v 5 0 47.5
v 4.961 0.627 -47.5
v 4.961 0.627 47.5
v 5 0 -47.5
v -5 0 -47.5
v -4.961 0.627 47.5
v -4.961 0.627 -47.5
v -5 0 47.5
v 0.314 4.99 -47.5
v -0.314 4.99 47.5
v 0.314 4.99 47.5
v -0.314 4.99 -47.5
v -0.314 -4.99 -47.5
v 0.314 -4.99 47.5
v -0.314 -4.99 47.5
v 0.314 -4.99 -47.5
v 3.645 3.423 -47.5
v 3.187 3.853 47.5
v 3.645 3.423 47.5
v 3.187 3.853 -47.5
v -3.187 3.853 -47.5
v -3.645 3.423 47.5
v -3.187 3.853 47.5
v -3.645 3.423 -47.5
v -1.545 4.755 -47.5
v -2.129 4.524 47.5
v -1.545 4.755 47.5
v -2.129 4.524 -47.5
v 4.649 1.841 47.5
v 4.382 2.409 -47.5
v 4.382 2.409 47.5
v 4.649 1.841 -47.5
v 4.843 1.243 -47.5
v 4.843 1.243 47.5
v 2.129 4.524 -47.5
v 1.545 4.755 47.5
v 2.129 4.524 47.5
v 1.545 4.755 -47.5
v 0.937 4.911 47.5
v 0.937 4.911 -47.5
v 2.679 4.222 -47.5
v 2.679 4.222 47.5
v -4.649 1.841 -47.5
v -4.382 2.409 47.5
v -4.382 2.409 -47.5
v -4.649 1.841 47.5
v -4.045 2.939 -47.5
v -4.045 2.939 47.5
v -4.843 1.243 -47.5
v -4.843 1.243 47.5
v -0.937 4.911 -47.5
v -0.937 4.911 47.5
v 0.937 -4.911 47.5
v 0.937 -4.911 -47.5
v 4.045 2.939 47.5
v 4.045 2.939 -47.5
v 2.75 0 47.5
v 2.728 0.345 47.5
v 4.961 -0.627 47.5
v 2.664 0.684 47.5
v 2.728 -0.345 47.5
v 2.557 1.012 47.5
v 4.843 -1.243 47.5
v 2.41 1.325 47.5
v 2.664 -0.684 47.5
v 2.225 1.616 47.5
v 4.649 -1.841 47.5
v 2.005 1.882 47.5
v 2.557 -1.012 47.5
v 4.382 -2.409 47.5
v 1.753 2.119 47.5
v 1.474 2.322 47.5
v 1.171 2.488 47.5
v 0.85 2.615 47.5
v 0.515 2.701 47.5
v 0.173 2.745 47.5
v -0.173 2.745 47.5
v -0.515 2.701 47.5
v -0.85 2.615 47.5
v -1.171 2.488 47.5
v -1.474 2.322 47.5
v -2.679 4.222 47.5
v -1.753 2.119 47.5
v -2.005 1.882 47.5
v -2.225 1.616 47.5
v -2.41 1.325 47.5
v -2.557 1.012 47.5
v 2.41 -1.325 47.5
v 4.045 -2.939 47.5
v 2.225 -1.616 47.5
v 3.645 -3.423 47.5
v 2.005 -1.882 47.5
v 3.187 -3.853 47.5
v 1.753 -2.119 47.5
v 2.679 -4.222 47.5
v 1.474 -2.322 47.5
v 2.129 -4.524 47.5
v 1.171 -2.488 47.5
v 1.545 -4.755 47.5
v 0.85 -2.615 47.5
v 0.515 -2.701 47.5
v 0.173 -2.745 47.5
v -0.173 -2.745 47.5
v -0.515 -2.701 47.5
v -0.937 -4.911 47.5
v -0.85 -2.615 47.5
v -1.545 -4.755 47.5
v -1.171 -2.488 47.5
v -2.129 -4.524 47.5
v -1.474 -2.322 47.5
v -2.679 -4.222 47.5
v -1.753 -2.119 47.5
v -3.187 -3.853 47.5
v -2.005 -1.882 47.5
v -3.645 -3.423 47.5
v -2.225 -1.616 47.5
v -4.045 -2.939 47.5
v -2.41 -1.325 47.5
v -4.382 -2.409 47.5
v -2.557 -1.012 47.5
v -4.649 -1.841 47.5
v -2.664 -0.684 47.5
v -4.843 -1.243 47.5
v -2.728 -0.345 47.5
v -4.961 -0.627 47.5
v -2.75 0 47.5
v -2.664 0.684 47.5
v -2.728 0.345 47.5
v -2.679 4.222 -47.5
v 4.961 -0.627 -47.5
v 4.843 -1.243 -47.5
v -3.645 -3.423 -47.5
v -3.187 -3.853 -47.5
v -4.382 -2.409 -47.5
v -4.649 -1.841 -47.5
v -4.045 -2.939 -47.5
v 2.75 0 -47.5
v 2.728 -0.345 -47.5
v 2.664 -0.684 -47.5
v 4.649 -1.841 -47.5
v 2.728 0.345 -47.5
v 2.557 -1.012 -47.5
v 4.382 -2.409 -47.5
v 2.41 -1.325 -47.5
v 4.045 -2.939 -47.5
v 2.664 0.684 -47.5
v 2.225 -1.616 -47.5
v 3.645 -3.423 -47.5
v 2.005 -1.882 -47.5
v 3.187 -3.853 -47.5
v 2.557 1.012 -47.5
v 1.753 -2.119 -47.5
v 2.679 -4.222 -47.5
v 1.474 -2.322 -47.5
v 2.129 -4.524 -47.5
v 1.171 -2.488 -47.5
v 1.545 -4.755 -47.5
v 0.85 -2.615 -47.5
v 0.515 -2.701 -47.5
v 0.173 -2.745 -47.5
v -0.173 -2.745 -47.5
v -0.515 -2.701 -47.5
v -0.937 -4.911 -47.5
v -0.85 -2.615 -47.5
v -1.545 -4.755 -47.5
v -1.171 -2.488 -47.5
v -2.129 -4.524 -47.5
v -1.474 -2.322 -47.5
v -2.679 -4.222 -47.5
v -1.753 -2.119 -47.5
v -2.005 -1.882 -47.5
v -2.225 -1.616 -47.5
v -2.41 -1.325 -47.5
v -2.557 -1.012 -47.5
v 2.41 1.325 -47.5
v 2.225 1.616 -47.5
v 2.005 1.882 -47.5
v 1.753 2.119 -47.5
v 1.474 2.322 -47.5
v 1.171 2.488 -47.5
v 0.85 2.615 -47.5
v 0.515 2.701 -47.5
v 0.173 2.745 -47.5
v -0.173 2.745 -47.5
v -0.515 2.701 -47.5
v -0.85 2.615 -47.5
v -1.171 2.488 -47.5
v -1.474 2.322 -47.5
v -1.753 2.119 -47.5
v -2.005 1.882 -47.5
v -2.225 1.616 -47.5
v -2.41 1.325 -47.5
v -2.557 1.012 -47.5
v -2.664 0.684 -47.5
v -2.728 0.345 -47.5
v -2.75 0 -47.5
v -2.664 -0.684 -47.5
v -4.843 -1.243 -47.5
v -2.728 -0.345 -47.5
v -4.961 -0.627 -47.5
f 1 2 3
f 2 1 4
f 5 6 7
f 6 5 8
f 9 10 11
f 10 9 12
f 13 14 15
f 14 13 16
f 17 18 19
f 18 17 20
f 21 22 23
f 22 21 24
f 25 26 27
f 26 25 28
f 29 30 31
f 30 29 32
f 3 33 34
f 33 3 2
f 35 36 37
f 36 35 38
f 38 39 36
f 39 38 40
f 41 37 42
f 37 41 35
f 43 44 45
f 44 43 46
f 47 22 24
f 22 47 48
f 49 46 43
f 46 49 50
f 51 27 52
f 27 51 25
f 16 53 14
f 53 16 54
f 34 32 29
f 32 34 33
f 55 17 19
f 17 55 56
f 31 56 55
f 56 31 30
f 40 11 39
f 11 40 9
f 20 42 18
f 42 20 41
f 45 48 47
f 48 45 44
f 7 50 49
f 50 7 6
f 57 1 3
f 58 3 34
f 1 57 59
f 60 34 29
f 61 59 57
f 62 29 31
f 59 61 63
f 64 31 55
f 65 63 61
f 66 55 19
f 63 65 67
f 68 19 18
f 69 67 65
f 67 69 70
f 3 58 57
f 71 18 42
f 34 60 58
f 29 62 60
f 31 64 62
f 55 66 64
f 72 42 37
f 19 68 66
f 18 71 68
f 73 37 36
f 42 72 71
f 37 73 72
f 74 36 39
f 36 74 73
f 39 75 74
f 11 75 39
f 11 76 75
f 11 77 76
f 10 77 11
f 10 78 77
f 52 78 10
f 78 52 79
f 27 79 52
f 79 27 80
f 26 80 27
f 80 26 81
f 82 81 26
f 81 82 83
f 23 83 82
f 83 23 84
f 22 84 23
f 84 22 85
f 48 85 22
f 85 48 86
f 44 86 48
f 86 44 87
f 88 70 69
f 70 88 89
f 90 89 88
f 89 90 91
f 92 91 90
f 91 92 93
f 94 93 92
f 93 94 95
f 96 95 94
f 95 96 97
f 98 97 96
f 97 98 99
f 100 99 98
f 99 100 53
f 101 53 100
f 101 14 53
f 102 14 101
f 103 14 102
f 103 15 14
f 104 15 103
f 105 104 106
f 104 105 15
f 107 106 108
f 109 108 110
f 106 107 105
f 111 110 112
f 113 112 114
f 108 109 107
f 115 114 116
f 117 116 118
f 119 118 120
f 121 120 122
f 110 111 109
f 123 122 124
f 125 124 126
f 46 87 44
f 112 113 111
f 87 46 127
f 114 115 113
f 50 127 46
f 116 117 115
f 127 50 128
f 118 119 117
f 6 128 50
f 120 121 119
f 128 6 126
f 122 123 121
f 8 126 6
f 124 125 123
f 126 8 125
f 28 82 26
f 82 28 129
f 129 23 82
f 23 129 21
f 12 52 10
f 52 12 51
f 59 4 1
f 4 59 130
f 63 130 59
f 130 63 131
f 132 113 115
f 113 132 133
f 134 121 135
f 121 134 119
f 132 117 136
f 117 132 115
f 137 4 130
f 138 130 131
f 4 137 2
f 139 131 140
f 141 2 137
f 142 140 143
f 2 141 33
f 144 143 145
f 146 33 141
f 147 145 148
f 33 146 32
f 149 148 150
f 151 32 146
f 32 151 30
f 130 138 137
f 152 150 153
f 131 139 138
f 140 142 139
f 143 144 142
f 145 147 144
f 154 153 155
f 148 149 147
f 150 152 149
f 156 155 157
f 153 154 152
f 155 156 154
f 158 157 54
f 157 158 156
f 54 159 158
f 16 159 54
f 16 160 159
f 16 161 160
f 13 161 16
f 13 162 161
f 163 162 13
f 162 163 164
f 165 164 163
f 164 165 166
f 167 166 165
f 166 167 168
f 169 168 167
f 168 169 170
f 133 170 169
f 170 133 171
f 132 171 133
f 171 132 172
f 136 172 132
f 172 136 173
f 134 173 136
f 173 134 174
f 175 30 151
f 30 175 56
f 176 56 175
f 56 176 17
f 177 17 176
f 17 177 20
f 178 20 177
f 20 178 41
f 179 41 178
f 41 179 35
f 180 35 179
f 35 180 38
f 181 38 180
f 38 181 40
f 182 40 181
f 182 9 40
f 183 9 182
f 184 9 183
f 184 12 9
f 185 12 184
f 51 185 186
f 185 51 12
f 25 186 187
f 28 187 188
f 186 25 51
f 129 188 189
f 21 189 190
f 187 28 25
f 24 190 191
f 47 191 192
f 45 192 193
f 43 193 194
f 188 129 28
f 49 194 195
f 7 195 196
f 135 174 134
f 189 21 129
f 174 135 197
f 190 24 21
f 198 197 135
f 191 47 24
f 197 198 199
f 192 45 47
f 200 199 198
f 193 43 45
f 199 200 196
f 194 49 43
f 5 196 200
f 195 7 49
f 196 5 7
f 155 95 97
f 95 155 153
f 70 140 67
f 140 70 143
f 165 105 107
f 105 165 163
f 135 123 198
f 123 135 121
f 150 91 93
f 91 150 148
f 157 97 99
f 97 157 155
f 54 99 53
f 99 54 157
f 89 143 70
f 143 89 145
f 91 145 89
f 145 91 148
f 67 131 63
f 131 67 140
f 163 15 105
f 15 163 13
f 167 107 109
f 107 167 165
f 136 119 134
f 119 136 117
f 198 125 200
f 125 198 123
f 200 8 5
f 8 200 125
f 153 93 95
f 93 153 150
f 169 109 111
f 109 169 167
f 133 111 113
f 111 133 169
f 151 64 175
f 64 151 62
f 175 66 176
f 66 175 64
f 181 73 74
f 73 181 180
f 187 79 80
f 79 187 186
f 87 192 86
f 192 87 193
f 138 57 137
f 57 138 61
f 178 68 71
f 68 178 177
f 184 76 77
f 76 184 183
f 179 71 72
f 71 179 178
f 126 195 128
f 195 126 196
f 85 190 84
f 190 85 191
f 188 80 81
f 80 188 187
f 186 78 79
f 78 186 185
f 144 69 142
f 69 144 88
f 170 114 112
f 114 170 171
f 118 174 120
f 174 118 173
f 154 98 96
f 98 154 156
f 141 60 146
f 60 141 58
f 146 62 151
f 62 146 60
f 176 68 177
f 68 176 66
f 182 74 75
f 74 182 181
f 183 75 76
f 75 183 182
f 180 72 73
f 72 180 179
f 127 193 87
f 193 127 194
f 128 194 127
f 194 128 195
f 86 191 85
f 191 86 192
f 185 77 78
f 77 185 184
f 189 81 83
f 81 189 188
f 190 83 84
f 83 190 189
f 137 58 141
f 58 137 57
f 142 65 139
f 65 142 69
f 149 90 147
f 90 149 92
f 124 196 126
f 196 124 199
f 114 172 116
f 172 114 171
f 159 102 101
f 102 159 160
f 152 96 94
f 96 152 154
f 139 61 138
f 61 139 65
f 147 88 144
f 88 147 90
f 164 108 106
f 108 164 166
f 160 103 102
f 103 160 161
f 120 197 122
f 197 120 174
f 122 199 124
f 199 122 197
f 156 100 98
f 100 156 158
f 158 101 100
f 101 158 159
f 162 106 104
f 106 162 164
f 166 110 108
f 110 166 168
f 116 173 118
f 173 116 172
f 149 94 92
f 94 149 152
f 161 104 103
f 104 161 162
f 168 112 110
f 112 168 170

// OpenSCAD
$fn = 50;


difference() {
	union() {
		translate(v = [0, 0, -47.5000000000]) {
			cylinder(h = 95, r = 5.0000000000);
		}
	}
	union() {
		translate(v = [0, 0, -100.0000000000]) {
			cylinder(h = 200, r = 2.7500000000);
		}
	}
}
